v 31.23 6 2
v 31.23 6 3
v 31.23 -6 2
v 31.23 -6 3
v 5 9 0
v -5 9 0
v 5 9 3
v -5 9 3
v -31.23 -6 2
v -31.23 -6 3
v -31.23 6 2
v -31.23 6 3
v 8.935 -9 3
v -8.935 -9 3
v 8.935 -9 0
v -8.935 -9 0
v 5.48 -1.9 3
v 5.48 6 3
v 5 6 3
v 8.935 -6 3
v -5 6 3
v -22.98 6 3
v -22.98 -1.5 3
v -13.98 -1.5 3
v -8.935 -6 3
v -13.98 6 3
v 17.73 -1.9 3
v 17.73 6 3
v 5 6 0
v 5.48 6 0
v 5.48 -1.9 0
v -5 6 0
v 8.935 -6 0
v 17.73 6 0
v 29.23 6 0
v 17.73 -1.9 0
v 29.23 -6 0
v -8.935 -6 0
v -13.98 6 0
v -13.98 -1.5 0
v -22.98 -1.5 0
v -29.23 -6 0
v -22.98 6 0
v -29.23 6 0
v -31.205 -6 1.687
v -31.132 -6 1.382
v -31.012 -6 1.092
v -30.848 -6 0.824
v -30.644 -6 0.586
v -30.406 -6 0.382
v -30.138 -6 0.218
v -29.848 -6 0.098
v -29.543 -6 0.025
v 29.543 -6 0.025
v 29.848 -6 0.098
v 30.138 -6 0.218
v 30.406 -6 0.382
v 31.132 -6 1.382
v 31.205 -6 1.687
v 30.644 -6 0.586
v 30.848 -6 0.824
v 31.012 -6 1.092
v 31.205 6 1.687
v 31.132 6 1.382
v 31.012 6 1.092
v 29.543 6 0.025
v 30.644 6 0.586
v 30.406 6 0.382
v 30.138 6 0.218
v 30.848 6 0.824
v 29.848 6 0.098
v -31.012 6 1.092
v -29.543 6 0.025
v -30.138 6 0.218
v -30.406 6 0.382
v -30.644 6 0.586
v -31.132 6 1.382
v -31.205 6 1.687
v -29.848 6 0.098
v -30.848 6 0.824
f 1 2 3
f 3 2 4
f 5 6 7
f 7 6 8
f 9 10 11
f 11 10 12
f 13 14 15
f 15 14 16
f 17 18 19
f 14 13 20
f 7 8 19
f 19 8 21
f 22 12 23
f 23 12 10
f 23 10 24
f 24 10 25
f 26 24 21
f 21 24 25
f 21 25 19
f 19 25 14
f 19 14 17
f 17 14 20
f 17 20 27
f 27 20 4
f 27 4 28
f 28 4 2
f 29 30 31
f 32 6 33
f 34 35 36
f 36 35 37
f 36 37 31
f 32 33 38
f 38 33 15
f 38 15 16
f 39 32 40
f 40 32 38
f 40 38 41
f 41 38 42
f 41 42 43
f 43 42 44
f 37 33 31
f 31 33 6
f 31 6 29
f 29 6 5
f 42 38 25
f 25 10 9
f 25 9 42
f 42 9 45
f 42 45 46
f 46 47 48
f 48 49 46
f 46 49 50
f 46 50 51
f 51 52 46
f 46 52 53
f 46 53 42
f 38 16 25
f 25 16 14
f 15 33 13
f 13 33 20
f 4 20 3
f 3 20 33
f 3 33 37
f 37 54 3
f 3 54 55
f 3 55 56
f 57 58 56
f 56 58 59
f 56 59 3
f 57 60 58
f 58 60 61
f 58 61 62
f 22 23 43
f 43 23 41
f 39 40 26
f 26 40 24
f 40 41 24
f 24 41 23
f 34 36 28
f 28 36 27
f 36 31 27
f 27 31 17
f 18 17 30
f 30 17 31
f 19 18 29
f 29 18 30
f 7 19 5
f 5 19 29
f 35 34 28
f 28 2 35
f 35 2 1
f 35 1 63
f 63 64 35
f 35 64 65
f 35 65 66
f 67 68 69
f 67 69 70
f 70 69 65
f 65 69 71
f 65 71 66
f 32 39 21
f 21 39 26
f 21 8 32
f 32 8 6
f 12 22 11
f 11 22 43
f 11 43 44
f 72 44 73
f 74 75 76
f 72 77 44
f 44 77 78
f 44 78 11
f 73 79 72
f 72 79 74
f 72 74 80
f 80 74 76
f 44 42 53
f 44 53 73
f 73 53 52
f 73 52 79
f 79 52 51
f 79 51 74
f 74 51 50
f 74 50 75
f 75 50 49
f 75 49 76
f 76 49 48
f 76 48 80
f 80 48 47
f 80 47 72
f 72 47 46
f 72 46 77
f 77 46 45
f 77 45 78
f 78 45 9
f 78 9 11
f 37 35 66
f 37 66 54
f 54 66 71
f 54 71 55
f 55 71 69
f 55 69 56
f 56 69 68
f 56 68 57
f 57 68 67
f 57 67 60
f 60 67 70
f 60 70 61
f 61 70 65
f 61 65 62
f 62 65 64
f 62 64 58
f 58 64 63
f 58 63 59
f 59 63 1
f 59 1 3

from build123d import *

# Parameters (mm, degrees)
SKETCH1_W           = 62.46
SKETCH1_H           = 18
BOSS_EXTRUDE1_DEPTH = 3
SKETCH2_W           = 22.295
SKETCH2_H           = 3
CUT_EXTRUDE1_DEPTH  = 3
SKETCH3_W           = 12.25
SKETCH3_H           = 10.9
SKETCH3_W_2         = 9
SKETCH3_H_2         = 10.5
CUT_EXTRUDE2_DEPTH  = 3
SKETCH5_W           = 26.23
SKETCH5_H           = 3
CUT_EXTRUDE3_DEPTH  = 3
FILLET1_R           = 2
FILLET2_R           = 2


with BuildPart() as part:
    # Sketch1 → Boss-Extrude1 (new body)
    with BuildSketch(Plane.XY):
        Rectangle(SKETCH1_W, SKETCH1_H)
    extrude(amount=BOSS_EXTRUDE1_DEPTH)

    # Sketch2 → Cut-Extrude1 (cut)
    with BuildSketch(Plane.XY.offset(3)):
        with Locations((20.0825, -7.5)):
            Rectangle(SKETCH2_W, SKETCH2_H)
        with Locations((-20.0825, -7.5)):
            Rectangle(SKETCH2_W, SKETCH2_H)
    extrude(amount=-CUT_EXTRUDE1_DEPTH, mode=Mode.SUBTRACT)

    # Sketch3 → Cut-Extrude2 (cut)
    with BuildSketch(Plane.XY.offset(3)):
        with Locations((11.605, 3.55)):
            Rectangle(SKETCH3_W, SKETCH3_H)
        with Locations((-18.48, 3.75)):
            Rectangle(SKETCH3_W_2, SKETCH3_H_2)
    extrude(amount=-CUT_EXTRUDE2_DEPTH, mode=Mode.SUBTRACT)

    # Sketch5 → Cut-Extrude3 (cut)
    with BuildSketch(Plane(origin=(0, 0, 0), x_dir=(-1, 0, 0), z_dir=(0, 0, -1))):
        with Locations((18.115, 7.5)):
            Rectangle(SKETCH5_W, SKETCH5_H)
        with Locations((-18.115, 7.5)):
            Rectangle(SKETCH5_W, SKETCH5_H)
    extrude(amount=-CUT_EXTRUDE3_DEPTH, mode=Mode.SUBTRACT)

    # Fillet1
    fillet1_edges = [part.edges().sort_by_distance(p)[0] for p in [
        (-31.23, 0, 0),
    ]]
    fillet(fillet1_edges, radius=FILLET1_R)

    # Fillet2
    fillet2_edges = [part.edges().sort_by_distance(p)[0] for p in [
        (31.23, 0, 0),
    ]]
    fillet(fillet2_edges, radius=FILLET2_R)


solid = part.part
